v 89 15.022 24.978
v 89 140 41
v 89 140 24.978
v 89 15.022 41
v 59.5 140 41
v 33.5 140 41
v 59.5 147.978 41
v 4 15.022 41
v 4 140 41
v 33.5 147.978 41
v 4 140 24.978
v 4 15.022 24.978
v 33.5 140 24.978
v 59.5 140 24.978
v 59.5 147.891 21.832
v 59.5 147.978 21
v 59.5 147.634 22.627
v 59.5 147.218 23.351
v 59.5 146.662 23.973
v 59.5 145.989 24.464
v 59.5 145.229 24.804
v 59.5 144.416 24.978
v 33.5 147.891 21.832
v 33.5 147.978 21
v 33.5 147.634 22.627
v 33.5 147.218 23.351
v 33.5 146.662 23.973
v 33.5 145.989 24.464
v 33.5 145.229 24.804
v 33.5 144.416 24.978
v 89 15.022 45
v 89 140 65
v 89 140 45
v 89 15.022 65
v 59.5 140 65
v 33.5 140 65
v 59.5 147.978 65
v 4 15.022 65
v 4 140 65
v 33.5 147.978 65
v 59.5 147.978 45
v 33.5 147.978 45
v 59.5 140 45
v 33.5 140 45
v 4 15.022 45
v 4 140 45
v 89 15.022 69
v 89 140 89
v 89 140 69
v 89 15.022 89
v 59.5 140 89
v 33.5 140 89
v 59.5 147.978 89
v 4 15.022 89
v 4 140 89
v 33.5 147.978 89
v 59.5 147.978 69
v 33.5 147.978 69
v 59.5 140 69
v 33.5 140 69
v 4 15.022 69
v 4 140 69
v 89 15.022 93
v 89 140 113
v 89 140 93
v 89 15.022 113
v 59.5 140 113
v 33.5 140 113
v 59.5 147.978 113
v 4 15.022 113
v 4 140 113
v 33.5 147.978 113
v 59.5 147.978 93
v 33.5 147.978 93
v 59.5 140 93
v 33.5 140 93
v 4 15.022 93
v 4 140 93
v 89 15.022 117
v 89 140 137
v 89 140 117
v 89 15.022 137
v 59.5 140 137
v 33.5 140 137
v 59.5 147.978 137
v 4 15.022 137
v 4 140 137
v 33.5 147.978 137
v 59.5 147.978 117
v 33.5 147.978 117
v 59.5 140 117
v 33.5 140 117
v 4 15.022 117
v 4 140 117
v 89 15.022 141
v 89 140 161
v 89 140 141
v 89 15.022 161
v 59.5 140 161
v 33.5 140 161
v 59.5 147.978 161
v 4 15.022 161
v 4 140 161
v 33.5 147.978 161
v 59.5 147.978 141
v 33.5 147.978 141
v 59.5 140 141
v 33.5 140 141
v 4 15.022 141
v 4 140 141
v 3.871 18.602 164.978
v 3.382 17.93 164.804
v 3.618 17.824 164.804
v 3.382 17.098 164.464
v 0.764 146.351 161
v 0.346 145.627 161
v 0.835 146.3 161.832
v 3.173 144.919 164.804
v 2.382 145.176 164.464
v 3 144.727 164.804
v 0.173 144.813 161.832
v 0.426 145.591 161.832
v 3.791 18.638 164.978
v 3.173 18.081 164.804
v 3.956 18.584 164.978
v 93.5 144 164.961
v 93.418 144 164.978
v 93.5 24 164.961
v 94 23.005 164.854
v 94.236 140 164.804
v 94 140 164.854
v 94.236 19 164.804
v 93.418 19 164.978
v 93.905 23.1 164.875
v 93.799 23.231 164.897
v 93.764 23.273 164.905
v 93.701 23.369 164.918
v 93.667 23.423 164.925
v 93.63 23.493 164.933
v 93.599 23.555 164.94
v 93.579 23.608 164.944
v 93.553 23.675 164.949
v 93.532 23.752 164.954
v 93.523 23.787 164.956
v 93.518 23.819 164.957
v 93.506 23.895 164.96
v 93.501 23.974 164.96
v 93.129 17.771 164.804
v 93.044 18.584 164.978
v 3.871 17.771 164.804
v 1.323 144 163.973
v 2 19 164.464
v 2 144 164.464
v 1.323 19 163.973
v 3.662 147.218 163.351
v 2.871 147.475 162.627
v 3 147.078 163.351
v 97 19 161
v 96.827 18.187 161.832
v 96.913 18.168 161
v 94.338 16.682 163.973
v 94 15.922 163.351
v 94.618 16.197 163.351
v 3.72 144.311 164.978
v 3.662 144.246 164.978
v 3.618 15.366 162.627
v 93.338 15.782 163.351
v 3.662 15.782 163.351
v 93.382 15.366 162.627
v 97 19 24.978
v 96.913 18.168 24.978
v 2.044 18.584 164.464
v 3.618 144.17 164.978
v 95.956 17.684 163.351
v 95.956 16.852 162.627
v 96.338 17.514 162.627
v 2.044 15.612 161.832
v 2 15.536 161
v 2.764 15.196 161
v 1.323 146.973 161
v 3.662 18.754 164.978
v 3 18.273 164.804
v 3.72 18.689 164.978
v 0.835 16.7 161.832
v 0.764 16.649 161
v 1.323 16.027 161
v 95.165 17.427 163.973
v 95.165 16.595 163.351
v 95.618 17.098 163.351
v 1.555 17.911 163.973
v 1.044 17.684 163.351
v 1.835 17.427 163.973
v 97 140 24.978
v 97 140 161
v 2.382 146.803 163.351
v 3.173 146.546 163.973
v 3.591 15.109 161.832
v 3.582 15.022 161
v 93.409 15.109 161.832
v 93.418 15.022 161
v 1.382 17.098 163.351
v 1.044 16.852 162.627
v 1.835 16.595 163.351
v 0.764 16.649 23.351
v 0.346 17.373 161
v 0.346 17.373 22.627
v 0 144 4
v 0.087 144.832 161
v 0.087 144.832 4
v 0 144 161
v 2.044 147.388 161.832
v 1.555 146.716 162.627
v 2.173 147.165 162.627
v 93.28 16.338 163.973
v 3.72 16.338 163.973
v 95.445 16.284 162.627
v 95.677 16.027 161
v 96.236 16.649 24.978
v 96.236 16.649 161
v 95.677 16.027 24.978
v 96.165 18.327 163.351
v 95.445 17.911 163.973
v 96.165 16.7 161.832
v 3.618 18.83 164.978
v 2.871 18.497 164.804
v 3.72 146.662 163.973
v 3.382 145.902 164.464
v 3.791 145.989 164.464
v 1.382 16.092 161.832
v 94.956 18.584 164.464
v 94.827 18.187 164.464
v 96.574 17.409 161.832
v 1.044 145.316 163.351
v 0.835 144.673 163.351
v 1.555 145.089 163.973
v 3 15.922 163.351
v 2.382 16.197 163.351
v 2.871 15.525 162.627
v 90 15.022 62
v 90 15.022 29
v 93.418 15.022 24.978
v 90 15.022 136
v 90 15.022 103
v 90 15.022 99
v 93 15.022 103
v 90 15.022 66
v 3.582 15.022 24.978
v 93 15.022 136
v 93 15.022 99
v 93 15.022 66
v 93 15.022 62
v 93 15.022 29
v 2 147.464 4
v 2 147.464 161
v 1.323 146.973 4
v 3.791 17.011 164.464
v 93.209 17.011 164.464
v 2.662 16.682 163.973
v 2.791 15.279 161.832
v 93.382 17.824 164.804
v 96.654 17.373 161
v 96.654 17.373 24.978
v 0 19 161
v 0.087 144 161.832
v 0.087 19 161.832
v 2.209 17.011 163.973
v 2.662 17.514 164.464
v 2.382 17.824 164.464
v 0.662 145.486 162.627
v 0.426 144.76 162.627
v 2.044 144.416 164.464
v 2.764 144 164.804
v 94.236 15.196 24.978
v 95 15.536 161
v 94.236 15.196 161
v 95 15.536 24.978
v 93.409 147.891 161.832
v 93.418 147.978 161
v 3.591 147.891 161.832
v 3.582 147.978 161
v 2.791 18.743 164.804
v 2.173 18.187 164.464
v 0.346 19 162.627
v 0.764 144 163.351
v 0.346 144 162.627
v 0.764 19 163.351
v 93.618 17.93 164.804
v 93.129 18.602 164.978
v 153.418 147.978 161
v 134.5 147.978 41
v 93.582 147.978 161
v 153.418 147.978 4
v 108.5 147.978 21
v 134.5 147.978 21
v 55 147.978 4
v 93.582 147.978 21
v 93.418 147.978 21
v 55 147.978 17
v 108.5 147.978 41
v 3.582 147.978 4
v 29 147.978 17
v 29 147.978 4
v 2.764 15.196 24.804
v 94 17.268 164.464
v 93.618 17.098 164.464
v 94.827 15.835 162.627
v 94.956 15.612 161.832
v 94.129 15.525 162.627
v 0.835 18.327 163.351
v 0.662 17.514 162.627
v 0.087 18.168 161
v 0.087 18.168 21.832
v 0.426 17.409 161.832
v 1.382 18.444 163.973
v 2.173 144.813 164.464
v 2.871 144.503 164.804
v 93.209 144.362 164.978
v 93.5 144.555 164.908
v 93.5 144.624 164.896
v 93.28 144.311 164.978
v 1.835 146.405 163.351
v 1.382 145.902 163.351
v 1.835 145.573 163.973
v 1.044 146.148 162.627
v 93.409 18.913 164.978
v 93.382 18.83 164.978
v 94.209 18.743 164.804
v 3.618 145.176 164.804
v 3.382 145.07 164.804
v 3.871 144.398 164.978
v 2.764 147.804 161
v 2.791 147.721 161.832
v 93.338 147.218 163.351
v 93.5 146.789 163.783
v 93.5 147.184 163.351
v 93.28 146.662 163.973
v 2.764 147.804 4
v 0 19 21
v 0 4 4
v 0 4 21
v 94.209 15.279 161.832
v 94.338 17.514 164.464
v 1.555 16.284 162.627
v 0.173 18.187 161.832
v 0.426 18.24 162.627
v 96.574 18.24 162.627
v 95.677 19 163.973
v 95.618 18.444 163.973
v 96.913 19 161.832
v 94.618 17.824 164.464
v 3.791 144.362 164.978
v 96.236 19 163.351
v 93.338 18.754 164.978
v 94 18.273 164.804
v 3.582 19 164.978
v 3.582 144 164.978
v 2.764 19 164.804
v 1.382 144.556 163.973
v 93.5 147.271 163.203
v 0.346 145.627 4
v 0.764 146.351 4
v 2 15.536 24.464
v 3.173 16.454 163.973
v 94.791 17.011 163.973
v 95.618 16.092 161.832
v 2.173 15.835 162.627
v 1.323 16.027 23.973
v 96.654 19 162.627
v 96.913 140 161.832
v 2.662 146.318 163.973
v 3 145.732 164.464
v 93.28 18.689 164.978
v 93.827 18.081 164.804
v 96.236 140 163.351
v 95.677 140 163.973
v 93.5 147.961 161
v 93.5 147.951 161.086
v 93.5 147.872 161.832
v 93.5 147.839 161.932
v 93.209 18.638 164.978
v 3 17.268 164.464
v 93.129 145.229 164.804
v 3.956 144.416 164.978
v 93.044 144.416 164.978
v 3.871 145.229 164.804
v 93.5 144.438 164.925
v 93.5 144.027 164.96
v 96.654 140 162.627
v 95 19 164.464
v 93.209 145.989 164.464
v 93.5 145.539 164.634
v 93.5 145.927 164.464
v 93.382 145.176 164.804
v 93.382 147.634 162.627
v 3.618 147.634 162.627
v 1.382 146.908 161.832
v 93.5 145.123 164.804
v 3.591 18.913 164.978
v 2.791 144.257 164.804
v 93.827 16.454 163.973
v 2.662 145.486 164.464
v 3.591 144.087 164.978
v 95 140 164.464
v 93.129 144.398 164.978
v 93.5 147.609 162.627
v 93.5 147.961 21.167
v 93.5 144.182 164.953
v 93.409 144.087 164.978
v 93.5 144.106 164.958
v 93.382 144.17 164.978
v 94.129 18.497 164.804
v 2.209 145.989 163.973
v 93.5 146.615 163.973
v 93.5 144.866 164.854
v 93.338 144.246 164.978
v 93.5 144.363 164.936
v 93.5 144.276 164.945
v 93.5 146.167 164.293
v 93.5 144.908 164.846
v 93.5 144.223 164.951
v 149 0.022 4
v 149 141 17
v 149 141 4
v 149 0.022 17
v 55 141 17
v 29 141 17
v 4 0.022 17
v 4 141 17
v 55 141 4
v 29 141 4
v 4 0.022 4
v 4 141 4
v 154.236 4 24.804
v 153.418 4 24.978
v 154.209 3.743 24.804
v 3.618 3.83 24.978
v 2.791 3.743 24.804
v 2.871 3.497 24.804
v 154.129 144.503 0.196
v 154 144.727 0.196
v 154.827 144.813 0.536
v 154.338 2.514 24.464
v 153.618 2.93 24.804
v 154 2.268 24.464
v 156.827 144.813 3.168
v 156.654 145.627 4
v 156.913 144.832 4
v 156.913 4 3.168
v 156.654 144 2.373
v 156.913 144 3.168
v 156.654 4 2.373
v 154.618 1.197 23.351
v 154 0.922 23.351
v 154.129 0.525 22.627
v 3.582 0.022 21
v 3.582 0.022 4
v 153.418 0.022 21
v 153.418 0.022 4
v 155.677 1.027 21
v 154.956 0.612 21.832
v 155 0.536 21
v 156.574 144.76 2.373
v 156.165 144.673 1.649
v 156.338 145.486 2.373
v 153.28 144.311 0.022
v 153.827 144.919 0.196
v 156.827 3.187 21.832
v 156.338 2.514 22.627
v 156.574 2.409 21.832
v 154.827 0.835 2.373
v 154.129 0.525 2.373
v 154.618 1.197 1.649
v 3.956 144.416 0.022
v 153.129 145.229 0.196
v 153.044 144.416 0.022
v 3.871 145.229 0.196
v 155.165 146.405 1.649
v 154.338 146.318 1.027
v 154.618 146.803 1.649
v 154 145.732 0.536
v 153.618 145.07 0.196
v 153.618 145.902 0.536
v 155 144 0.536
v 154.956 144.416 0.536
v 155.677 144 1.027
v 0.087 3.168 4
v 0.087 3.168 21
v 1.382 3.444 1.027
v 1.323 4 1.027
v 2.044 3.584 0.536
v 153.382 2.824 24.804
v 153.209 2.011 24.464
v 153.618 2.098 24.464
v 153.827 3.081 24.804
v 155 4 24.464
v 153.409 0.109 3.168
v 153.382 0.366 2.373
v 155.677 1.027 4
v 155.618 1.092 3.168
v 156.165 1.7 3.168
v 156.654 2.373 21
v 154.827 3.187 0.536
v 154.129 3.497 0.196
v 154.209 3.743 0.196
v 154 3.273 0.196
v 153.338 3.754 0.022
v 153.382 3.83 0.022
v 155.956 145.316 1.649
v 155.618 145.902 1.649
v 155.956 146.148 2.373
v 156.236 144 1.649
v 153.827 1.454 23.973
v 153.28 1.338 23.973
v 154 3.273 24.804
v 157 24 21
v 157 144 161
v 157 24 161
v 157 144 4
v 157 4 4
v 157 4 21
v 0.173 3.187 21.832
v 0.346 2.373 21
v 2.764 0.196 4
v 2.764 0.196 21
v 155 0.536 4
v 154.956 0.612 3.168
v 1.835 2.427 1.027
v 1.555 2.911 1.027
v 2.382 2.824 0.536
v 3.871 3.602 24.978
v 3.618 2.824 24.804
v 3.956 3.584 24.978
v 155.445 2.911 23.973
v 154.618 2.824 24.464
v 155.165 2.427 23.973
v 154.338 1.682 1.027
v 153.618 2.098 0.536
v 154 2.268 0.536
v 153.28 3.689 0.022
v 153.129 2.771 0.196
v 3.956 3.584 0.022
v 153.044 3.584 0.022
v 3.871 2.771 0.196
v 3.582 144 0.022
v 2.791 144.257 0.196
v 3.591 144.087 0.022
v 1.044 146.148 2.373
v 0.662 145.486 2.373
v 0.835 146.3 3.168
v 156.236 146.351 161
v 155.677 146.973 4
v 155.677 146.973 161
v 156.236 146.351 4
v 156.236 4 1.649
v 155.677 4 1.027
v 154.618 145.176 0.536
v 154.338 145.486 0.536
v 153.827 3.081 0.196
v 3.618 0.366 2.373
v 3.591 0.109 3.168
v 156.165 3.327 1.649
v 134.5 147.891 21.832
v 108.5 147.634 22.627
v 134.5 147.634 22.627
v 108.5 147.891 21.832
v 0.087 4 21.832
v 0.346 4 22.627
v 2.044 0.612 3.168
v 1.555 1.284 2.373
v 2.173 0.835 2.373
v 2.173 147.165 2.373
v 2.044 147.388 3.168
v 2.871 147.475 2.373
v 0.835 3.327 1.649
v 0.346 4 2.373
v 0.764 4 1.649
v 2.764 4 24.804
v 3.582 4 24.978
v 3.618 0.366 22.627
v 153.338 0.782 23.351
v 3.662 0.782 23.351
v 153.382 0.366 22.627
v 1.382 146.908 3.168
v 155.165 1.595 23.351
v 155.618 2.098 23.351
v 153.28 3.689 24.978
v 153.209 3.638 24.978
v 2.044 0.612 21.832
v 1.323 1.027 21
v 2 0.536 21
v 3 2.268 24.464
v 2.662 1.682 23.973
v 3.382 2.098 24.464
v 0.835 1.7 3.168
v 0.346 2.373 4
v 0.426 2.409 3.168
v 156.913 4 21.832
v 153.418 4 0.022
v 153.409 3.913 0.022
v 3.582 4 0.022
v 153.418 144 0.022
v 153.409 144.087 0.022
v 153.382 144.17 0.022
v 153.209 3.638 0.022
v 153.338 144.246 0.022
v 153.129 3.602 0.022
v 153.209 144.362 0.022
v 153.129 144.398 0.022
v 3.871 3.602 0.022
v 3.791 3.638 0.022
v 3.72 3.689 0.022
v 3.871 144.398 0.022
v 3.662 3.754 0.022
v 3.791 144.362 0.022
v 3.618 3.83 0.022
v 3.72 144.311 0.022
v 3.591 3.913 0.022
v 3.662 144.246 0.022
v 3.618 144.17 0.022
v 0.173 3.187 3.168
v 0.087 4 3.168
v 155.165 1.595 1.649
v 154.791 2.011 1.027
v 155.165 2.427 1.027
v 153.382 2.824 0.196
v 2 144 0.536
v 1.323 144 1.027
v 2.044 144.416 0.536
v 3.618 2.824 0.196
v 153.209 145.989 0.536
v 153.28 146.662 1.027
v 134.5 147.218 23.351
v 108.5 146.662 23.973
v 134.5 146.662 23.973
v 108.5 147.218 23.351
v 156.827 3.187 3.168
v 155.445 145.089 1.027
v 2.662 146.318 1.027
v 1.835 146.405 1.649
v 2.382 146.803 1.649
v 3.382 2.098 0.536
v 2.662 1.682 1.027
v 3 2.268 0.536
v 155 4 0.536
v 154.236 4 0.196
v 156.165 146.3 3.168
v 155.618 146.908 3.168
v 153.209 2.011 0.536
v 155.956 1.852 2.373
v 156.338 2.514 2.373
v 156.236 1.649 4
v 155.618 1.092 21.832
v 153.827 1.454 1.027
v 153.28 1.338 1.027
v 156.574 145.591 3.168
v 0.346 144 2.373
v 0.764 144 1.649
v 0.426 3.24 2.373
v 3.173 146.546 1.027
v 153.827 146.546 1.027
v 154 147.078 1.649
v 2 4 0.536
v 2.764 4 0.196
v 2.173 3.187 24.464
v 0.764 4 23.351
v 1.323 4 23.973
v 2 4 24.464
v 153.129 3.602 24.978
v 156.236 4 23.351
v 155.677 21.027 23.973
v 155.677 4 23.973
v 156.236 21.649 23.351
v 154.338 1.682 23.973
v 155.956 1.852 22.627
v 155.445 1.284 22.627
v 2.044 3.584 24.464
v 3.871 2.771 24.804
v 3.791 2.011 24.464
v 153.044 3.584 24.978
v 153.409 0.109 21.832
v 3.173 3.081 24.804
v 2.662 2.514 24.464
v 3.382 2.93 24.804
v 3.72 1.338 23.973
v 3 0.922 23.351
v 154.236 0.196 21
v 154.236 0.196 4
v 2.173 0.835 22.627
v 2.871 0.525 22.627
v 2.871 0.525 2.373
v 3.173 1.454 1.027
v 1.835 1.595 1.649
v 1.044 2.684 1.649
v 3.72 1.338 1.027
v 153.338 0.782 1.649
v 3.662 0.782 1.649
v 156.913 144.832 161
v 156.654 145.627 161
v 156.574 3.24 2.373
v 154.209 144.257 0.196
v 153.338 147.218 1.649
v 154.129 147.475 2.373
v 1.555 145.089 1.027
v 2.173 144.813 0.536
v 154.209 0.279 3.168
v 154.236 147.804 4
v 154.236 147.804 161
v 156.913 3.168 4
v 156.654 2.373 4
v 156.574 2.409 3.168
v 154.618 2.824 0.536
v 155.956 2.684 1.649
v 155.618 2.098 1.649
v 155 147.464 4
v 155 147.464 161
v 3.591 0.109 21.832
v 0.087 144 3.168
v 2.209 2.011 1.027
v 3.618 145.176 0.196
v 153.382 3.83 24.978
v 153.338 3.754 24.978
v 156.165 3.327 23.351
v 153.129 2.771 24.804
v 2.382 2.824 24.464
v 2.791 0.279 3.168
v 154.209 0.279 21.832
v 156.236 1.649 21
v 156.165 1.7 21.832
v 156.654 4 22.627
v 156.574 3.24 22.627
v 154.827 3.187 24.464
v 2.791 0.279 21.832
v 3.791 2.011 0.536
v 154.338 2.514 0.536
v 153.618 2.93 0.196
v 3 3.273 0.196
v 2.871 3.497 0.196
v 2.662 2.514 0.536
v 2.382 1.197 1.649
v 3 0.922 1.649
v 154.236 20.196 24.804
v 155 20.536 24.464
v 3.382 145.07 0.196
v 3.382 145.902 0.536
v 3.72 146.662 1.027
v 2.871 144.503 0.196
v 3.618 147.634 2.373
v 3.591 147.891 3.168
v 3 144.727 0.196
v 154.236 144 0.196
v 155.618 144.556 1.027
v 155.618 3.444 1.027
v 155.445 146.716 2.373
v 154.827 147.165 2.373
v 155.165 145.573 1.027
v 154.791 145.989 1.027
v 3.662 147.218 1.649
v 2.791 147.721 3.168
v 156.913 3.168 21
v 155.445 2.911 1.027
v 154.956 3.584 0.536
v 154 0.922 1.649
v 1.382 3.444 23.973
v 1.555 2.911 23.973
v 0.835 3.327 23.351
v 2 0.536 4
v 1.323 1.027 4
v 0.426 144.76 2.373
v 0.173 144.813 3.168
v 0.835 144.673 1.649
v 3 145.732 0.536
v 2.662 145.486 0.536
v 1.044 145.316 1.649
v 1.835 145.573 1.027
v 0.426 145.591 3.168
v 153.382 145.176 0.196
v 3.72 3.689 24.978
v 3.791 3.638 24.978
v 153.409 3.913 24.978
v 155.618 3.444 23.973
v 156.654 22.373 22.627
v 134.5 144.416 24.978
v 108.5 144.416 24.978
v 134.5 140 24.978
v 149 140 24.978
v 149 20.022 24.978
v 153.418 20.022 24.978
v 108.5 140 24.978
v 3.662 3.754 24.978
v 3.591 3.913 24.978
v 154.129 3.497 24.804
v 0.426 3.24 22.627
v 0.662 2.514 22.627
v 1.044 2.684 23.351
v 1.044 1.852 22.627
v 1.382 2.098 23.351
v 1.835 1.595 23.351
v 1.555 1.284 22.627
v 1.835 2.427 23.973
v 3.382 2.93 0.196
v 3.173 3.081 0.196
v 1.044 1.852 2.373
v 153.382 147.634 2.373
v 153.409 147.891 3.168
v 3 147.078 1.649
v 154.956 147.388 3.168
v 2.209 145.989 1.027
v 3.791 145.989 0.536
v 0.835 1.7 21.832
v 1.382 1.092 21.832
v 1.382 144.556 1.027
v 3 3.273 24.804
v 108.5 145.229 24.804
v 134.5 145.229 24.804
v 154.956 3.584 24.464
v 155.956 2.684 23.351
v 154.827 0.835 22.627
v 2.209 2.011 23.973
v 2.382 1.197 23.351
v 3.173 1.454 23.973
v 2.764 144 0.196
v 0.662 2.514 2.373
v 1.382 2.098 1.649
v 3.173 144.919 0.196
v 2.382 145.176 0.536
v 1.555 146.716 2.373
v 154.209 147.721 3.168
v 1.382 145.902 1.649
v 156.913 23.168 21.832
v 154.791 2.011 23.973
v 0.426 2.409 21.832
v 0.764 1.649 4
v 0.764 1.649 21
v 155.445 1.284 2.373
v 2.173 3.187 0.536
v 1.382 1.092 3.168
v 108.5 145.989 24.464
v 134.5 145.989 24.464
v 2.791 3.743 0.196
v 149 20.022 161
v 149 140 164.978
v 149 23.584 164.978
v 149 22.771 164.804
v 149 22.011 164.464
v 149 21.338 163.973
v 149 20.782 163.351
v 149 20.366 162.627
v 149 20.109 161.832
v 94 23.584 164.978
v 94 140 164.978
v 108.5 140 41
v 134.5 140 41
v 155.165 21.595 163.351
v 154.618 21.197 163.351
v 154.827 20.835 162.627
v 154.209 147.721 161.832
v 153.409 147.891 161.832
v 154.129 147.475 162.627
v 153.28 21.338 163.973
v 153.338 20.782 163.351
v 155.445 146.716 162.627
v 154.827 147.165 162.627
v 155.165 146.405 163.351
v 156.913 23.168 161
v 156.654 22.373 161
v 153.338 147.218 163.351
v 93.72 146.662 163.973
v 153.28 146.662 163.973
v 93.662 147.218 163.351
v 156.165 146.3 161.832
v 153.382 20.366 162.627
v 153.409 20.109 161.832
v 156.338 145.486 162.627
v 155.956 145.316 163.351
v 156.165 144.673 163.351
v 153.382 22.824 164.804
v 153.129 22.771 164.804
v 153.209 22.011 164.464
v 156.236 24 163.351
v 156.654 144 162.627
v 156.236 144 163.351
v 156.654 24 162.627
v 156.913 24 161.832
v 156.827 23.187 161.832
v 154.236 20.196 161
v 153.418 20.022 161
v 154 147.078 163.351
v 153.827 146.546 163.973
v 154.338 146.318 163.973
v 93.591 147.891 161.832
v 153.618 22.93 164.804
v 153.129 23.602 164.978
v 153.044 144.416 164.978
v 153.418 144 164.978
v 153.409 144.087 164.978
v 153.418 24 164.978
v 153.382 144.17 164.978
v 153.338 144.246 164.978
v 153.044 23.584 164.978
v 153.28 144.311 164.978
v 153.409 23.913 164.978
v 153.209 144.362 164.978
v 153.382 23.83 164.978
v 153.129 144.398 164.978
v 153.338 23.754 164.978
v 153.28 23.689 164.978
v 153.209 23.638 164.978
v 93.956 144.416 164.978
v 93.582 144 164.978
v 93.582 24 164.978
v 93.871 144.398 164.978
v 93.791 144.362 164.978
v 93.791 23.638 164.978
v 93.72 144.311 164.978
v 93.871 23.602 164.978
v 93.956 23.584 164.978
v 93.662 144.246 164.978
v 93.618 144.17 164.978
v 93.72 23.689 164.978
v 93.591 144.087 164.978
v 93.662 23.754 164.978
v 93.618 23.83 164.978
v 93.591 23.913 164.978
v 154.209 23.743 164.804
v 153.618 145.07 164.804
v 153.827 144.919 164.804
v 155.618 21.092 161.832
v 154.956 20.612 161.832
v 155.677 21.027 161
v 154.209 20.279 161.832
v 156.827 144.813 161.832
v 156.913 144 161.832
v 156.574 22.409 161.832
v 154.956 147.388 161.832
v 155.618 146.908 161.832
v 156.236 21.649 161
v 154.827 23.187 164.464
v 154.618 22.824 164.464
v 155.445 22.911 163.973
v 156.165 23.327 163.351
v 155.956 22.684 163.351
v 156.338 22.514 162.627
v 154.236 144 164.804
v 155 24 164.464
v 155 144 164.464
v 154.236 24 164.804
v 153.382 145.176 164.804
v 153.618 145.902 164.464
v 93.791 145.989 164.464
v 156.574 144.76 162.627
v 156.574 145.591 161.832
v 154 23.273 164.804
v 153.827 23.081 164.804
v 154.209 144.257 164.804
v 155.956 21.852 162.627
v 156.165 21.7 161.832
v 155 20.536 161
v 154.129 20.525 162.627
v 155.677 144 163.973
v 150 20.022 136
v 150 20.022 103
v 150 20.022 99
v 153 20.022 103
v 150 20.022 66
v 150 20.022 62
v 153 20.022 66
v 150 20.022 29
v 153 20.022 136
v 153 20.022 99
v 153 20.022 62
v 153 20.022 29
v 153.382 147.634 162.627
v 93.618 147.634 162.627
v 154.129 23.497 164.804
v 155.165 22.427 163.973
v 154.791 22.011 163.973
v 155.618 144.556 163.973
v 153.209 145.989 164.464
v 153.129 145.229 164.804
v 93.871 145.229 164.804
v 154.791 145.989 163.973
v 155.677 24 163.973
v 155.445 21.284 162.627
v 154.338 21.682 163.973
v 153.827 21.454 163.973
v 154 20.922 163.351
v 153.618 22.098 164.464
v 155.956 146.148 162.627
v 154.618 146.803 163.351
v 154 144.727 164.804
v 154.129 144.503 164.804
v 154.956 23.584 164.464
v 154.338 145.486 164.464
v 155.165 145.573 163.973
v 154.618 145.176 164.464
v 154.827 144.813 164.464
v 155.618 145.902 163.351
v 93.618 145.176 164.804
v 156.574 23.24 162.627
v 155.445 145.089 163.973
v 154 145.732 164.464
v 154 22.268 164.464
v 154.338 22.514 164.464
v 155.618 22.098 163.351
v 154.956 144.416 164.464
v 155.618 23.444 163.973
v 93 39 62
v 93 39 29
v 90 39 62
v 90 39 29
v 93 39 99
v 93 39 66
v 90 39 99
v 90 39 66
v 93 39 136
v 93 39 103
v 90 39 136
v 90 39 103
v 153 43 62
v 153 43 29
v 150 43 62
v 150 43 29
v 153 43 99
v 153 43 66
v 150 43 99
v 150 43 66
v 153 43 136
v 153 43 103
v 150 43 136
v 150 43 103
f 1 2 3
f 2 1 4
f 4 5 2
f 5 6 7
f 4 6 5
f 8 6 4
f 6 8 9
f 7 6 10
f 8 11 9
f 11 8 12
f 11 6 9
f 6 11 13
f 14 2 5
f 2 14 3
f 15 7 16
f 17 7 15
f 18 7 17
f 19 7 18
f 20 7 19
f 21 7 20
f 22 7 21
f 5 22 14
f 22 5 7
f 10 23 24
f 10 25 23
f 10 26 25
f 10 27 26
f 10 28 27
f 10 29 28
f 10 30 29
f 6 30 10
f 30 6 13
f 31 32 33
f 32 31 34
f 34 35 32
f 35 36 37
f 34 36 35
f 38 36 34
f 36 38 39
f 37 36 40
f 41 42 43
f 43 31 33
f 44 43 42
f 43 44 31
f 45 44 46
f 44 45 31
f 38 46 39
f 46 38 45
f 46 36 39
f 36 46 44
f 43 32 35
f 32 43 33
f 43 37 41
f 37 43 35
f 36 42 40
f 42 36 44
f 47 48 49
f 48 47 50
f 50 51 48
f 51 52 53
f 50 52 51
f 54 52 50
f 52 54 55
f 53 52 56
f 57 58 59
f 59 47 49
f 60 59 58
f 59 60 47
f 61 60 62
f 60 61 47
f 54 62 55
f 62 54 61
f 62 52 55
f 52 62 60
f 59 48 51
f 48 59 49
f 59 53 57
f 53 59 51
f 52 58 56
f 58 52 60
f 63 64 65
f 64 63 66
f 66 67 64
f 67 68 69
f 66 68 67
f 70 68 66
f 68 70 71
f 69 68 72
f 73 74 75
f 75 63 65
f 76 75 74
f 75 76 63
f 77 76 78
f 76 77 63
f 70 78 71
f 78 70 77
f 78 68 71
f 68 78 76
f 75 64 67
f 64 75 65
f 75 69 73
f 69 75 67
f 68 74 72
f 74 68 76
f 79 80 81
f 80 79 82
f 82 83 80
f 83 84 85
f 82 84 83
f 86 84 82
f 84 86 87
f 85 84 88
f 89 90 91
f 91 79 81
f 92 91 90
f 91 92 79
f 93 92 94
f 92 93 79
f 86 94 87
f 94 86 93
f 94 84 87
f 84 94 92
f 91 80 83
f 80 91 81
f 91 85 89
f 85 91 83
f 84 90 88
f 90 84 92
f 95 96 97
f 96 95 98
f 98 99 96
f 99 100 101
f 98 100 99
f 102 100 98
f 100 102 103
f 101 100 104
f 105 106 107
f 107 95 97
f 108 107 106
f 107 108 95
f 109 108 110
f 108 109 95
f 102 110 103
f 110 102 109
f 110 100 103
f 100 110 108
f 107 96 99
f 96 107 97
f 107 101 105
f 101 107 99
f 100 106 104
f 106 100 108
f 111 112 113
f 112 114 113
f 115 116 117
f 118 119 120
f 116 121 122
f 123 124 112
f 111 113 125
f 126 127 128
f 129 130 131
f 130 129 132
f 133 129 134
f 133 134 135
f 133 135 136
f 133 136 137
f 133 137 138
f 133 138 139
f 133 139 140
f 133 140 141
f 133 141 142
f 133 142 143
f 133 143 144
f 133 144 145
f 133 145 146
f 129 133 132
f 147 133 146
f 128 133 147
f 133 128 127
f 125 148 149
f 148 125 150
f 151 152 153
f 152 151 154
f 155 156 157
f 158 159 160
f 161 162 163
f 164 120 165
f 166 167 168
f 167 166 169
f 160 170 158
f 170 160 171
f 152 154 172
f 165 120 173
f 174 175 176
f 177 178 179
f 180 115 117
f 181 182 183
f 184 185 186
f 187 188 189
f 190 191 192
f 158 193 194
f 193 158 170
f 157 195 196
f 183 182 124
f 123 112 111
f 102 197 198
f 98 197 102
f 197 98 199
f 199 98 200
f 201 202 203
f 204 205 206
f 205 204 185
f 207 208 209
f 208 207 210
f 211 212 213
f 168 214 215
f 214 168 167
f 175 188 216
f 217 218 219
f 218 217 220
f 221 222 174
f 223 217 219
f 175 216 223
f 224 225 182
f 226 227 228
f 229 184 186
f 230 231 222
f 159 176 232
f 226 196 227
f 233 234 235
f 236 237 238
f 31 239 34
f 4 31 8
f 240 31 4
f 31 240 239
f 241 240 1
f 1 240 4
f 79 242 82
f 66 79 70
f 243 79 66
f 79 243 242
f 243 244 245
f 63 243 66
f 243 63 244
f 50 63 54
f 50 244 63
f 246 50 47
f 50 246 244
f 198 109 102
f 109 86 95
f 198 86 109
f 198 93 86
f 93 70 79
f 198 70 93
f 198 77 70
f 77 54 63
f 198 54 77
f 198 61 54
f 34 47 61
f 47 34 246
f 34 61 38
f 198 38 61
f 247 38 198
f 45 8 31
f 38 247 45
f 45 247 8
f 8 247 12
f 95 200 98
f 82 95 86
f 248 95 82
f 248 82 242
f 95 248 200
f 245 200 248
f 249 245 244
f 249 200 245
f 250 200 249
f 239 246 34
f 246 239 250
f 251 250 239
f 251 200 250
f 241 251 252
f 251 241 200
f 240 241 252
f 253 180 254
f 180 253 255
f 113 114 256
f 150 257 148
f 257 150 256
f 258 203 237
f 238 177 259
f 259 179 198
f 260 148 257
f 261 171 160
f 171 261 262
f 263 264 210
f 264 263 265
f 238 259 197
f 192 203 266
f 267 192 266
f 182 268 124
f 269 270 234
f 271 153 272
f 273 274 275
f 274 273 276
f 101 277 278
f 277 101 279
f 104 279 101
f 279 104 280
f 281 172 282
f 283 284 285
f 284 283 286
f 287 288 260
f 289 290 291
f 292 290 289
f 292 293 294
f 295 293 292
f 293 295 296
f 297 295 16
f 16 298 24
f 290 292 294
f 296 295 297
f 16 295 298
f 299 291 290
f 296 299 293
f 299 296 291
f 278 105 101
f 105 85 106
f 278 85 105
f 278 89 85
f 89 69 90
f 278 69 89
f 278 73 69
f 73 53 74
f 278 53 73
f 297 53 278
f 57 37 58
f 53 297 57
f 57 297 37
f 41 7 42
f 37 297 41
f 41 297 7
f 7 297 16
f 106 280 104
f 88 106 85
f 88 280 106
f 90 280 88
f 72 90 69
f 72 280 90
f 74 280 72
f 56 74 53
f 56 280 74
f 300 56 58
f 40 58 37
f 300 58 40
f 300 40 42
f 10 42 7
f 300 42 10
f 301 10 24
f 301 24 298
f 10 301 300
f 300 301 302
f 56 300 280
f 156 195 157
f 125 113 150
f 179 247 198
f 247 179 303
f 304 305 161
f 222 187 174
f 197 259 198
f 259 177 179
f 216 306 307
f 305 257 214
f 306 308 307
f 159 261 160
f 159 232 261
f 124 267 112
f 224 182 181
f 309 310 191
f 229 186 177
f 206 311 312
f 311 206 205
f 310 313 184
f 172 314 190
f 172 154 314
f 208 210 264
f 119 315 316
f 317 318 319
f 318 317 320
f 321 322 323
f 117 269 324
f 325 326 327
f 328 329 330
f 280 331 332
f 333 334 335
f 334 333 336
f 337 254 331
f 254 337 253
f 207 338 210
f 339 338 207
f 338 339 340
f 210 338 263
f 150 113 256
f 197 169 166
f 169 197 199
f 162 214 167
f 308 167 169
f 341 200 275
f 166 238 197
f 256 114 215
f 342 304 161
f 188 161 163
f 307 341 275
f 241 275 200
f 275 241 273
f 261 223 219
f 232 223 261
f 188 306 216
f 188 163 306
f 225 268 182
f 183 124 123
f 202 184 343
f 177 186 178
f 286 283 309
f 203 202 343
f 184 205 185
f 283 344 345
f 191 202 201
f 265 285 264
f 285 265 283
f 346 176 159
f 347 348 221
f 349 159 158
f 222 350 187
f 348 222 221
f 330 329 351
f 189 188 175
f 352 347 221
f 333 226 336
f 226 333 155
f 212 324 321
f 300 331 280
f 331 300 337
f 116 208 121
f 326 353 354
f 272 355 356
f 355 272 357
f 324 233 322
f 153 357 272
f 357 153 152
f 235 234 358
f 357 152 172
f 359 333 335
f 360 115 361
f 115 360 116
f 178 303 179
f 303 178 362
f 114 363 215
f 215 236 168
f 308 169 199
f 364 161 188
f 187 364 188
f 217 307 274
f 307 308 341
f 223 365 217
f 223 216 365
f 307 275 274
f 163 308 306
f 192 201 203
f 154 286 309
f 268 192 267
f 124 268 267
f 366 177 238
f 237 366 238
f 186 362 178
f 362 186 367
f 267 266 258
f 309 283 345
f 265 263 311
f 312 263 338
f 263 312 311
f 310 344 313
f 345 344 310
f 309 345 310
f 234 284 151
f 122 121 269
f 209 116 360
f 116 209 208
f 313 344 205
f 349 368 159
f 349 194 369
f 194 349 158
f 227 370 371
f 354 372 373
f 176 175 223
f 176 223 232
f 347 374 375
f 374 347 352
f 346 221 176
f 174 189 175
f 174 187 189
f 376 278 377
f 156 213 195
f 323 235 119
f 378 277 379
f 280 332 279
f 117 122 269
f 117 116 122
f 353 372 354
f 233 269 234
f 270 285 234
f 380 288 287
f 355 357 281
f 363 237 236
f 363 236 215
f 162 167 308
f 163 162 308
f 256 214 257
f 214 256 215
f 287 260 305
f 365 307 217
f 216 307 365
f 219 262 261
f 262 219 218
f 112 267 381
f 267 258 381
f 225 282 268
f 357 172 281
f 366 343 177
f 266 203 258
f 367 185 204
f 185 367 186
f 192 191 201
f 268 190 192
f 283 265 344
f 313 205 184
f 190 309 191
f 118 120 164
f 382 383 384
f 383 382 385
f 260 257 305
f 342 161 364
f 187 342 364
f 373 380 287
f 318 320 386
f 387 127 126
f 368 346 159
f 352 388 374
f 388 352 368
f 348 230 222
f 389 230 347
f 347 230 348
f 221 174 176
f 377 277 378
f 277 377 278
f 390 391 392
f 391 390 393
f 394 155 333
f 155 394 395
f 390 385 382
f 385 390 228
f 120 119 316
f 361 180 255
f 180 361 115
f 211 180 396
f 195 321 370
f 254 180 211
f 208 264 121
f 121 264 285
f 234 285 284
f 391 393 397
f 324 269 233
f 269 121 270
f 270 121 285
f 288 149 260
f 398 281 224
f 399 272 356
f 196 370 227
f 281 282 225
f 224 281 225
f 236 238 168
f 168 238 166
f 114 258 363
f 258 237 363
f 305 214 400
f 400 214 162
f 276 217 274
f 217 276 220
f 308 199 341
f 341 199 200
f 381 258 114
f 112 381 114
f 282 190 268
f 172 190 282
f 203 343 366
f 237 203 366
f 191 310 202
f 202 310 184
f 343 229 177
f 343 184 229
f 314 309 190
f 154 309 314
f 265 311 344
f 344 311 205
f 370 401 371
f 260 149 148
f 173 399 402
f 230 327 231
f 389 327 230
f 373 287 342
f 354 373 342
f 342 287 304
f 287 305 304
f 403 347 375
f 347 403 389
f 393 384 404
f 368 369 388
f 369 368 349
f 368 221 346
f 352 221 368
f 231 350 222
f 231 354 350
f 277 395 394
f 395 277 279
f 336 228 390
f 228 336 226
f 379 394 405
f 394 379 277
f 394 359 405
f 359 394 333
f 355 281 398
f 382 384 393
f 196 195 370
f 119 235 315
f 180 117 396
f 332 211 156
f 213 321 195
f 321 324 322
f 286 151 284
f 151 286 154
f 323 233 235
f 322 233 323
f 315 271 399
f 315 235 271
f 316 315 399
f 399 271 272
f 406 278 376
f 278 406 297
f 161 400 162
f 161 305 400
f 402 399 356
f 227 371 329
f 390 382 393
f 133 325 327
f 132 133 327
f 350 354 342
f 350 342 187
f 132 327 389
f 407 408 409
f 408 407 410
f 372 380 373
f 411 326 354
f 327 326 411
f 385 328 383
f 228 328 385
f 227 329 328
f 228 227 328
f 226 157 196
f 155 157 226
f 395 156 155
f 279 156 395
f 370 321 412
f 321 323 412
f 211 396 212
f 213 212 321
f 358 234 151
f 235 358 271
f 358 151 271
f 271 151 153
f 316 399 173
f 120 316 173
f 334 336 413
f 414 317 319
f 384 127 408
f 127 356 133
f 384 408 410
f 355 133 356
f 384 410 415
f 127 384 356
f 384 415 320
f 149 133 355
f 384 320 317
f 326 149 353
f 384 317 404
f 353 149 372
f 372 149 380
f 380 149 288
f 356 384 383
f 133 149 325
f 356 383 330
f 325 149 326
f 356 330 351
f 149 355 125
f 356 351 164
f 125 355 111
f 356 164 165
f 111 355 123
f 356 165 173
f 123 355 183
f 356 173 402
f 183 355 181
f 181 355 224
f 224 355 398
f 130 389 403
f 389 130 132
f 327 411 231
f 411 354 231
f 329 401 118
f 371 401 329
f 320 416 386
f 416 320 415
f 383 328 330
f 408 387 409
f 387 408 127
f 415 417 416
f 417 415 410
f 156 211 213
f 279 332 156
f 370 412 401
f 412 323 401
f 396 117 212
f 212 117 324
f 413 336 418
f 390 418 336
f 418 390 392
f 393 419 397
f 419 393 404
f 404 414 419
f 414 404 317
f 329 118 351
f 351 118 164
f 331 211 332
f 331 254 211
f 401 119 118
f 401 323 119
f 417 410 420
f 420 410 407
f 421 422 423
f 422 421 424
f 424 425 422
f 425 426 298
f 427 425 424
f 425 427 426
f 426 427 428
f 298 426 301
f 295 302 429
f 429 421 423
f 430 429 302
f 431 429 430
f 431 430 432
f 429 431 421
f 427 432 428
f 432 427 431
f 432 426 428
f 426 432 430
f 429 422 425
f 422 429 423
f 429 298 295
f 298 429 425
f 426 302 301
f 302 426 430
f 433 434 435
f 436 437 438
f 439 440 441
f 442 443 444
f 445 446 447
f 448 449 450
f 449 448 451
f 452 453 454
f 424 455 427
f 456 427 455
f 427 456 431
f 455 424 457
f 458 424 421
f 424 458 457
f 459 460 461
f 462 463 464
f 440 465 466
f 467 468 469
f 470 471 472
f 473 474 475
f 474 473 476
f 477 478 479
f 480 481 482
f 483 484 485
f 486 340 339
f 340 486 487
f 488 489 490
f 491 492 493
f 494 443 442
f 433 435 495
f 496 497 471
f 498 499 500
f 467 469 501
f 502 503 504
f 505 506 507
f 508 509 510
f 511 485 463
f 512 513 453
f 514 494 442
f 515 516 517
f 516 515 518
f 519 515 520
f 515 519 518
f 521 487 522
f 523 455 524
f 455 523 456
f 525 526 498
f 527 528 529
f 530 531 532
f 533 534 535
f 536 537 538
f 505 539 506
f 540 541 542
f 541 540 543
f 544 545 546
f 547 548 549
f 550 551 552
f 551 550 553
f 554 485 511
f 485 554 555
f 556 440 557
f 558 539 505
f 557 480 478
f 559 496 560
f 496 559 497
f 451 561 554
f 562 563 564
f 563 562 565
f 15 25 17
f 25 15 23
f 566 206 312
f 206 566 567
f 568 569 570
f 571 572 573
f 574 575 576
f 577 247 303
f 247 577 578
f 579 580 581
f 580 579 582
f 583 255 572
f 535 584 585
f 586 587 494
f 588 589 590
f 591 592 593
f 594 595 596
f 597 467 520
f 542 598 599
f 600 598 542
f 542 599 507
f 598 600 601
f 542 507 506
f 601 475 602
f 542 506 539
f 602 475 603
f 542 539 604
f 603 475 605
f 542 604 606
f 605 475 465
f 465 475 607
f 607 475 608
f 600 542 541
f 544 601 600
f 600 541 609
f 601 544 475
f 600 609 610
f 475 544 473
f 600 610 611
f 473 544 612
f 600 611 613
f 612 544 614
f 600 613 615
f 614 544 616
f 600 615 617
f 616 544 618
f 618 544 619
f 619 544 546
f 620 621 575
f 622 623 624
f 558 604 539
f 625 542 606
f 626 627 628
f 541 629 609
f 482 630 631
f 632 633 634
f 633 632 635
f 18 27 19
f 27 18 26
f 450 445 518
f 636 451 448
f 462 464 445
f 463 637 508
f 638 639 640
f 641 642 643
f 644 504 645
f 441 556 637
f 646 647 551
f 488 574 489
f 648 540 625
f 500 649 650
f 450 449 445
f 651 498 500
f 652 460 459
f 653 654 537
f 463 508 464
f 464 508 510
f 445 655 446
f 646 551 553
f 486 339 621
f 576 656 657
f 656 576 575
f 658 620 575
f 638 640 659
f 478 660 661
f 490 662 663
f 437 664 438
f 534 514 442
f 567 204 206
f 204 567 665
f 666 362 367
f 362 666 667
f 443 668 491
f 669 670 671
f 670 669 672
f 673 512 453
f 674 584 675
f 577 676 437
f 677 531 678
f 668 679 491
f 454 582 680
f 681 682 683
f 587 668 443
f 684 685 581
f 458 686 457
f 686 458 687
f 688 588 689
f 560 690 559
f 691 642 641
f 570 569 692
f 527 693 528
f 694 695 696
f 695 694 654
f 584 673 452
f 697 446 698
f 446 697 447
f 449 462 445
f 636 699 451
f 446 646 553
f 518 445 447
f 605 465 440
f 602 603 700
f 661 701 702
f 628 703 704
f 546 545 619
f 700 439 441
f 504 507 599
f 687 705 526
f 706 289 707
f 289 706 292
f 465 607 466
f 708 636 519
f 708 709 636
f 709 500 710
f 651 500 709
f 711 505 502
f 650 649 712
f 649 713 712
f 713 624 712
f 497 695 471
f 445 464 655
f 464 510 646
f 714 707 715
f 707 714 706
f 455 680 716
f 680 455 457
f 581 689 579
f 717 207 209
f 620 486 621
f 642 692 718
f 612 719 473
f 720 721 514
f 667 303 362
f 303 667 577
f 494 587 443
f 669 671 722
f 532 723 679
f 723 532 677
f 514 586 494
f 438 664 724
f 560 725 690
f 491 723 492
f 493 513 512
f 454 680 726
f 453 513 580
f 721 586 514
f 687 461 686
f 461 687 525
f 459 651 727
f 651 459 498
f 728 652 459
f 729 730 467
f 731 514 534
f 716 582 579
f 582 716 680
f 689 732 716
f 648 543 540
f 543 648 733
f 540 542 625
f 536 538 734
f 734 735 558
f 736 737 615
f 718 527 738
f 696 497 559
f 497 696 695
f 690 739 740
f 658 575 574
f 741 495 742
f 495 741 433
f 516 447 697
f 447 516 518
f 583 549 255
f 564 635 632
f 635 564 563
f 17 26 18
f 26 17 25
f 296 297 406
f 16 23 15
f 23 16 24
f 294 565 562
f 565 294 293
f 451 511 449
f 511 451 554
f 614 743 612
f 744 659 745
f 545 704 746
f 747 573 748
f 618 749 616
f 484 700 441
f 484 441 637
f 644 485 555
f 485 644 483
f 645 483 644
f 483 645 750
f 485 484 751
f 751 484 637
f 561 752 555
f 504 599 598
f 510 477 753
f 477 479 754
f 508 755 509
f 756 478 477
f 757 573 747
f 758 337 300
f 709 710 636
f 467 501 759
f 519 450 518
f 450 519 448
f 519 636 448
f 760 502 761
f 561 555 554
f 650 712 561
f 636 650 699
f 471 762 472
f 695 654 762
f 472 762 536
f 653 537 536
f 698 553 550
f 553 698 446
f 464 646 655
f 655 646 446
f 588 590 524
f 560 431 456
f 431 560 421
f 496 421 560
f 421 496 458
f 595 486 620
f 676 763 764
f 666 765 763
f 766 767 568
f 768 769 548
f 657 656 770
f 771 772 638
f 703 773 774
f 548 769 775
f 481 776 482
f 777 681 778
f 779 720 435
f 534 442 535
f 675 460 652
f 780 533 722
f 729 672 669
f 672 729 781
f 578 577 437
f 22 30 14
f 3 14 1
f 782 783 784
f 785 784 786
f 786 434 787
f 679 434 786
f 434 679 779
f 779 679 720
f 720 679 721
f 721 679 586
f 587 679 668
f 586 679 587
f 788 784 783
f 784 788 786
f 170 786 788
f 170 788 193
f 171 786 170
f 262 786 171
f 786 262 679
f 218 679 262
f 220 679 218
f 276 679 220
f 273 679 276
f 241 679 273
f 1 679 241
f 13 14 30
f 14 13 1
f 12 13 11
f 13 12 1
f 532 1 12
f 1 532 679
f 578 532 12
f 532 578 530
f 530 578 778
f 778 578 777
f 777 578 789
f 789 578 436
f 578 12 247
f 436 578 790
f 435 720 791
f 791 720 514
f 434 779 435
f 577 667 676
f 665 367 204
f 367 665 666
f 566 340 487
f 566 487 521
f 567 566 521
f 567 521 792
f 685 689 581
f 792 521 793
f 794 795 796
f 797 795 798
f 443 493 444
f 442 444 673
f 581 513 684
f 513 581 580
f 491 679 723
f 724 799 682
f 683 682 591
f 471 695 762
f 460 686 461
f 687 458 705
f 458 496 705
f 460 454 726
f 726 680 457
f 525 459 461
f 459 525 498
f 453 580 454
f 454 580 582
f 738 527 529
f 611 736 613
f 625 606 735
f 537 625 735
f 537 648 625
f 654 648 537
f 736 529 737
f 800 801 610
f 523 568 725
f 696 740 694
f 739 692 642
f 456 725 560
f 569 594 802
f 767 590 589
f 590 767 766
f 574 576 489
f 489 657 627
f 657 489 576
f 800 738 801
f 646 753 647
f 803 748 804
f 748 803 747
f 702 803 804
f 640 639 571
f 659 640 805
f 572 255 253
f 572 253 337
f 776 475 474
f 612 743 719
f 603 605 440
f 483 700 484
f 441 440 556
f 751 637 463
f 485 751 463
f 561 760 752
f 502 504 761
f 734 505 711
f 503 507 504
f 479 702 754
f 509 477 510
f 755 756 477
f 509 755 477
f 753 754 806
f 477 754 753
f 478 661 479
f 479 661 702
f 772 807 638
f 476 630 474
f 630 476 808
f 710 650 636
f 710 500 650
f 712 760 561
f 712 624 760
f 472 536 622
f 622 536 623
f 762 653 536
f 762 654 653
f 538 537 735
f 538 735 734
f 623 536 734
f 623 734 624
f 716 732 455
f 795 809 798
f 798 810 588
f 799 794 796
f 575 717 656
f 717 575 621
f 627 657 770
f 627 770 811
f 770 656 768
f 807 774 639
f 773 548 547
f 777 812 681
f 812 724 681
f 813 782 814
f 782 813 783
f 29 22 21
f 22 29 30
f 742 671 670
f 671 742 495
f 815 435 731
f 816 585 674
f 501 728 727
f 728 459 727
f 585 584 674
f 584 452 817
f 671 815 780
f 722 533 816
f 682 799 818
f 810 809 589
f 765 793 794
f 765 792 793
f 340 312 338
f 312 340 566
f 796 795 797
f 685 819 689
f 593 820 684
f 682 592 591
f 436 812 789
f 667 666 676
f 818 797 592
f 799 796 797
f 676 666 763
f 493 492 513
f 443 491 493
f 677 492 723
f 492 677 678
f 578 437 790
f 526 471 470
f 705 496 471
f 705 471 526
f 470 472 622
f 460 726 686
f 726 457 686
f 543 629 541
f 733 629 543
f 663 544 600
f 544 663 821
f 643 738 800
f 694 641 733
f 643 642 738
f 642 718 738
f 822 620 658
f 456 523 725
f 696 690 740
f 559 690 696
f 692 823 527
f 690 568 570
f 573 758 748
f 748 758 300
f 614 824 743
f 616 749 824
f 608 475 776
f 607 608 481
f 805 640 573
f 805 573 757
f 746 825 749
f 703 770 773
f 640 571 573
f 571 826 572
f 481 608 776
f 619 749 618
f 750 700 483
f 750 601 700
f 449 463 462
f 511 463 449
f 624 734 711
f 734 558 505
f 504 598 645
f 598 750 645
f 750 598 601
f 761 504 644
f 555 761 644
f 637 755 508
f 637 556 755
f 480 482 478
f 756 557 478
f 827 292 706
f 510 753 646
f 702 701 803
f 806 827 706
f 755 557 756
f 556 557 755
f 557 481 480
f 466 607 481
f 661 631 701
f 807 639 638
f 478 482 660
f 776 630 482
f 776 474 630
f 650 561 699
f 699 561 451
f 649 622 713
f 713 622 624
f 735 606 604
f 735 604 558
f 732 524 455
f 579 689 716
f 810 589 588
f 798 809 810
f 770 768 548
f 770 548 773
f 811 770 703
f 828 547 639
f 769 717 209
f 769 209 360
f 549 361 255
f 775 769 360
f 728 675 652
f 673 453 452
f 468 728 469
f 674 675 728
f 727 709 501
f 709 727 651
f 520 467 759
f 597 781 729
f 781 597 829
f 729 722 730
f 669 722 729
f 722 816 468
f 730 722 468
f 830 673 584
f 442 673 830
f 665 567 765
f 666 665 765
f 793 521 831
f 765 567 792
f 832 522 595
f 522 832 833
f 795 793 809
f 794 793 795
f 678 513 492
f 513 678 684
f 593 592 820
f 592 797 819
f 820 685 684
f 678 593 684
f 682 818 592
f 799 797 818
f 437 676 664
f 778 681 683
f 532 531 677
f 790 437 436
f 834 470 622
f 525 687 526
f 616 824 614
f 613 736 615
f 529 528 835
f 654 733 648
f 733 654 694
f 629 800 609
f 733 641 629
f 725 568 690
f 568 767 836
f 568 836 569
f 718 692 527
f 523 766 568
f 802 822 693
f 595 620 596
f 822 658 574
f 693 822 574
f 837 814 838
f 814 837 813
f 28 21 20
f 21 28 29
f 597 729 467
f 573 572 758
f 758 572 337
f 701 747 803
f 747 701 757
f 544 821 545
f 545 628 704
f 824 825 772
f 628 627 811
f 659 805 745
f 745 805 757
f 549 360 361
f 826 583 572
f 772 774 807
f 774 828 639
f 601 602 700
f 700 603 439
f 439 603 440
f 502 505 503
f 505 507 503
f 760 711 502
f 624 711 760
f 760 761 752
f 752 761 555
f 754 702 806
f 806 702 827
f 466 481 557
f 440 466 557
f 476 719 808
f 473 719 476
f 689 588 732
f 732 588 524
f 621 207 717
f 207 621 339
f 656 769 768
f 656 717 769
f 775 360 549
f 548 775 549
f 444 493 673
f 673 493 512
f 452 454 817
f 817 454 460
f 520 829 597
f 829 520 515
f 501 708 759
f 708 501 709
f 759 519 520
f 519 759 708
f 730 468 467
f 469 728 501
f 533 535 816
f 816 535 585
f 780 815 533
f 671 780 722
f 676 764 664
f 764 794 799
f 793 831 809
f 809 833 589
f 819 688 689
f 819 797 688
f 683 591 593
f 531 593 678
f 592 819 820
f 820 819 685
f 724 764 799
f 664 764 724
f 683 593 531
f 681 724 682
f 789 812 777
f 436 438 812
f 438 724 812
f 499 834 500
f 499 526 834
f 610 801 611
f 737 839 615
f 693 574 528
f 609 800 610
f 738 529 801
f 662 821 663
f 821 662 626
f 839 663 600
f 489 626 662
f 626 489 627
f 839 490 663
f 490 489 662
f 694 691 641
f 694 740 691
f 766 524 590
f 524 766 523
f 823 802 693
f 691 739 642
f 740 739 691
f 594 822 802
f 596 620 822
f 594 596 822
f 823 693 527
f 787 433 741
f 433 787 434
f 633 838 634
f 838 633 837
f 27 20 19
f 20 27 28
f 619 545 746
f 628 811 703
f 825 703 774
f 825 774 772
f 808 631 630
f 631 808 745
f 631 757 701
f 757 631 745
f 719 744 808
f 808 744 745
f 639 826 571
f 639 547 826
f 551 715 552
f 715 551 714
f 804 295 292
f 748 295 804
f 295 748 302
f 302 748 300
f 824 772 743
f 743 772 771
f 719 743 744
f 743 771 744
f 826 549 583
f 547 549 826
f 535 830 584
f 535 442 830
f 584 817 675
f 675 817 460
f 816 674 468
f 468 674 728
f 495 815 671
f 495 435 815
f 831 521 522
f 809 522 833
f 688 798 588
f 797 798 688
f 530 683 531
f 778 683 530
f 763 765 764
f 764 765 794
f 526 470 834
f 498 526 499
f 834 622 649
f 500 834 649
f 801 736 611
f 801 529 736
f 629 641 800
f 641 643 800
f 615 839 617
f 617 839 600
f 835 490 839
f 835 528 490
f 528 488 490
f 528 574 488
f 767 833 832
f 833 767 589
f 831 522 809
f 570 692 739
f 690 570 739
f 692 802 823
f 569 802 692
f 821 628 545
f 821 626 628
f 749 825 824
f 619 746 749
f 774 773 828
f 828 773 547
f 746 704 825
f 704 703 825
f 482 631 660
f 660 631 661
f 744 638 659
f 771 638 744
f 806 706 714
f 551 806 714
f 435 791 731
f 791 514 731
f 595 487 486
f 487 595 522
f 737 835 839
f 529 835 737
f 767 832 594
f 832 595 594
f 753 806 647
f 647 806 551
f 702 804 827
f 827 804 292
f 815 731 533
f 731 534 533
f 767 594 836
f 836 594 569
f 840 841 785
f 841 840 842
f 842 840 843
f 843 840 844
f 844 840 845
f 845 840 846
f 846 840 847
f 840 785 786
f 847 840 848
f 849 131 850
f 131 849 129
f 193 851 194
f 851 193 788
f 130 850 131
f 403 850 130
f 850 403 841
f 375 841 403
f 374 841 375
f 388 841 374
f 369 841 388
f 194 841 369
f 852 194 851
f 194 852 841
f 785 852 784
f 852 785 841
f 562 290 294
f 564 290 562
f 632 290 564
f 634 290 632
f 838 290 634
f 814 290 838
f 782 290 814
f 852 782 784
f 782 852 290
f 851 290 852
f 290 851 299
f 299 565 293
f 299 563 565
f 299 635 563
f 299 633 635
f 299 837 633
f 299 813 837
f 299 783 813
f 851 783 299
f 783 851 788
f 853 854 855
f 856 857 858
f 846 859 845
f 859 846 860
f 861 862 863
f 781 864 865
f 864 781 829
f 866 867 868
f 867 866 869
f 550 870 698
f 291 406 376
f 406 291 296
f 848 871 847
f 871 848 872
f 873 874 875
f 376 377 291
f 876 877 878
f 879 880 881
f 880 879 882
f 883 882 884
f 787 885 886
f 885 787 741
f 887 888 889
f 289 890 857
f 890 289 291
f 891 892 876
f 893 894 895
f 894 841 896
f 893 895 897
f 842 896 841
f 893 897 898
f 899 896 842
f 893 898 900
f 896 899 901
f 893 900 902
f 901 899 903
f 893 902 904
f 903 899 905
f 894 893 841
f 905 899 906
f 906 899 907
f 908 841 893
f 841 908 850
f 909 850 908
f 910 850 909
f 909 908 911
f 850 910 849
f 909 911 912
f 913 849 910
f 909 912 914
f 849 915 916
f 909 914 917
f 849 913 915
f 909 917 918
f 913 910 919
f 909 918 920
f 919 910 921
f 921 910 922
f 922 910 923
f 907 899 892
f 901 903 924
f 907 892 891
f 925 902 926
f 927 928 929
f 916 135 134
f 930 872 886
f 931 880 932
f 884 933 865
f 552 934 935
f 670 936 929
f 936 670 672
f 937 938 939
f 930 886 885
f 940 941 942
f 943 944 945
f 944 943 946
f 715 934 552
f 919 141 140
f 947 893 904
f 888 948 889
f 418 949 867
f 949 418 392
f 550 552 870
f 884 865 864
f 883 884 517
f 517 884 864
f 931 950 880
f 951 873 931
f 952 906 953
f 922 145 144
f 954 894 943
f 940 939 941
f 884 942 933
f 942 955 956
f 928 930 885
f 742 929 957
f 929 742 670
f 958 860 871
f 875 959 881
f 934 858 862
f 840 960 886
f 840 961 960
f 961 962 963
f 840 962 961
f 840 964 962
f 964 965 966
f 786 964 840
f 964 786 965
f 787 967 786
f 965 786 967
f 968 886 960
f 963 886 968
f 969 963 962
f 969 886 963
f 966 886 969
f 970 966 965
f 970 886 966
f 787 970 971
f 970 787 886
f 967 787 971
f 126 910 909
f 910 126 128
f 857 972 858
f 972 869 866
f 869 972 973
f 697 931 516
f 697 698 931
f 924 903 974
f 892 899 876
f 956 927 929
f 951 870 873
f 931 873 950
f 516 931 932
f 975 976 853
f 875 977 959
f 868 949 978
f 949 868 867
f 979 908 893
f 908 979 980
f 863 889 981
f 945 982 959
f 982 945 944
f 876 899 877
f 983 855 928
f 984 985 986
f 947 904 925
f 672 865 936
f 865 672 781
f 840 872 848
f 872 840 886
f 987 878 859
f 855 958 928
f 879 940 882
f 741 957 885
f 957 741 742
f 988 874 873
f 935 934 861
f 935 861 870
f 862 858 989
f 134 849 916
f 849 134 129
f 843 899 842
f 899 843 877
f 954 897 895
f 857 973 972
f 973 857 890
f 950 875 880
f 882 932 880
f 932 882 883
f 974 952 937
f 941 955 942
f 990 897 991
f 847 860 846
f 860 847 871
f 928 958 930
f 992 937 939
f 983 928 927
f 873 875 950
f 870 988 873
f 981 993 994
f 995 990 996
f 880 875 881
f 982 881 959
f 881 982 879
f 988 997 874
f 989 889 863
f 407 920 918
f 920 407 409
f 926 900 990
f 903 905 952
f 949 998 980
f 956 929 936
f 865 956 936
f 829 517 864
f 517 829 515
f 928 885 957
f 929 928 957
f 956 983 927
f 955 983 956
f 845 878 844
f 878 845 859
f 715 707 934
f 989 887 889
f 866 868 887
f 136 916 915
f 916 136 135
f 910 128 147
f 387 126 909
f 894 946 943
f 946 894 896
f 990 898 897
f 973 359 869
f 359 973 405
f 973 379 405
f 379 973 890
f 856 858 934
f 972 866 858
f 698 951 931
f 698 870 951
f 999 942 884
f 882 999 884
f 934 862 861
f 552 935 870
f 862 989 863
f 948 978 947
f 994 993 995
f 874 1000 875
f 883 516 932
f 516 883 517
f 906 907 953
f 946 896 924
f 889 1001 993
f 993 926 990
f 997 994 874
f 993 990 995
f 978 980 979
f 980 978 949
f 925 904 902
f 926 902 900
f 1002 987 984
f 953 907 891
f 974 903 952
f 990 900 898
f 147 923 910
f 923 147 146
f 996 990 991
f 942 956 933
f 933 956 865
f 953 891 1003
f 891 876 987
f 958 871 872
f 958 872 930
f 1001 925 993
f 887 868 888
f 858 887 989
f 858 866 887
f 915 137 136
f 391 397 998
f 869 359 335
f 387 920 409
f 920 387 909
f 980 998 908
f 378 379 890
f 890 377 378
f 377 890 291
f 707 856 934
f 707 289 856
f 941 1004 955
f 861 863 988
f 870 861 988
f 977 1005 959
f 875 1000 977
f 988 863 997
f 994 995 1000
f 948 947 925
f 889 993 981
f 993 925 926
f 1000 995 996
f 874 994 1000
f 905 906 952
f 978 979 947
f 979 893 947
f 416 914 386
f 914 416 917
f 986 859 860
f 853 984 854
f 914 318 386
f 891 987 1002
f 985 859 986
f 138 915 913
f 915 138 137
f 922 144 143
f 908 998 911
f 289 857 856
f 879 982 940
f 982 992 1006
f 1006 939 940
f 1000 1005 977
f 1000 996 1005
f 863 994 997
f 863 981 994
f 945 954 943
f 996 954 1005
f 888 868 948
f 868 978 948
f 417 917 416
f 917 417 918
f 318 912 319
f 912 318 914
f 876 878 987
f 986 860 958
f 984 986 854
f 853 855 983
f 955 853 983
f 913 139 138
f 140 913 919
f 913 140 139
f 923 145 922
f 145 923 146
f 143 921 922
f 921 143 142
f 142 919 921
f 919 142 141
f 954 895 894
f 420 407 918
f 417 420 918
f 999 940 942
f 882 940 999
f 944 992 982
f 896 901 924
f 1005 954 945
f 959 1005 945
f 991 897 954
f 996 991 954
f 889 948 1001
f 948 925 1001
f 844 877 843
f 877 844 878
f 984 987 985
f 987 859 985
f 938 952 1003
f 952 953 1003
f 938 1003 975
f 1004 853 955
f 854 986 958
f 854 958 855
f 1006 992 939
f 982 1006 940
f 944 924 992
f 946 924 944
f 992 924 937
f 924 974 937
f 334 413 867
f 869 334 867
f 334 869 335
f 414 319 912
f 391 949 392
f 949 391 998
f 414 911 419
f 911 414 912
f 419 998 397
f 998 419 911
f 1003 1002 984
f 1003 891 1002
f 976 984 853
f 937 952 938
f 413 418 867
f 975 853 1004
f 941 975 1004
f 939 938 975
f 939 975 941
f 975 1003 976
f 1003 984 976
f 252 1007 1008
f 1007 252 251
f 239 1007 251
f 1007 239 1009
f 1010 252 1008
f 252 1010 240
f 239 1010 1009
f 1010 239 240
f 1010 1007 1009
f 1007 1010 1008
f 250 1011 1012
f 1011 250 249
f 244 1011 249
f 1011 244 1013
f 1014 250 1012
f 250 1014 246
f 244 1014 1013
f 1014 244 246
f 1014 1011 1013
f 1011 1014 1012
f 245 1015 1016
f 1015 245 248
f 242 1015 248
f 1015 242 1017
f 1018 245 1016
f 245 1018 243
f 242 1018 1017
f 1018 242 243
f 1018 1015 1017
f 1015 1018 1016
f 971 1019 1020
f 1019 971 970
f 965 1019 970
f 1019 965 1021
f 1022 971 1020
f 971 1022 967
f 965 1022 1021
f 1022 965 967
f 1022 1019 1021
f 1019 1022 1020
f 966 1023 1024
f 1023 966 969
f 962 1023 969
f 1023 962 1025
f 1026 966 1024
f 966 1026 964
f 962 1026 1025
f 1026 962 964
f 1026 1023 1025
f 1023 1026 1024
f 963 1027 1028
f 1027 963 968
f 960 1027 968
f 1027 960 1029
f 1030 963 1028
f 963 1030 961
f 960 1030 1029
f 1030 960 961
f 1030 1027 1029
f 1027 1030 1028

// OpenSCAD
cd_length     = 140;
cd_width      = 145;
cd_height     =  13;

slit          =  26;
slit_position =  25;

//SD cards
sd_length     =   3;
sd_width      =  25;
sd_height     =  33;

battery_hold_w = 36;
battery_hold_l = 100;

drive_width   =  85;
drive_length  = 125;
drive_height  =  20;
wall          =   4;

no_of_drives  =   6;

large_drive_length = 120;
large_drive_width  =  55;
large_drive_height = 180;

$fn = 30;

module rounded_cube(width, length, height, corner) {
    hull() {
        translate([ 0*width+1*corner, 0*length+1*corner, 0*height+1*corner])
            sphere( r = corner );

        translate([ 1*width-0*corner, 0*length+1*corner, 0*height+1*corner ])
            sphere( r = corner );

        translate([ 0*width+1*corner, 1*length-0*corner, 0*height+1*corner ])
            sphere( r = corner );

        translate([ 1*width-0*corner, 1*length-0*corner, 0*height+1*corner ])
            sphere( r = corner );

        translate([ 0*width+1*corner, 0*length+1*corner, 1*height-0*corner ])
            sphere( r = corner );

        translate([ 1*width-0*corner, 0*length+1*corner, 1*height-0*corner ])
            sphere( r = corner );

        translate([ 0*width+1*corner, 1*length-0*corner, 1*height-0*corner ])
            sphere( r = corner );

        translate([ 1*width-0*corner, 1*length-0*corner, 1*height-0*corner ])
            sphere( r = corner );
    }
}

module drive() {
    cube([drive_width, drive_length+1, drive_height]);
    
    translate([0.5*(drive_width-slit), drive_length, 0])
    cube([slit, 2*wall+2, drive_height]);

}

module cd() {
    cube([cd_width, cd_length+1, cd_height]);
    
    translate([slit_position, cd_length, 0])
    cube([slit, 2*wall+2, cd_height]);

}

module cd_case() {
    difference() {
        //main body
        rounded_cube(cd_width+2*wall, cd_length+wall, cd_height+2*wall, wall);
        
        //slit for CD ROM
        translate([wall, 0, wall])
        cd();
    }    
}

module sd() {
    cube([sd_length, sd_width, sd_height]);
}


module drive_case() {
    difference() {
        rounded_cube(drive_width+2*wall, drive_length+wall, no_of_drives*(drive_height+wall), wall);

        for (drive_no = [0: no_of_drives - 1]) {
            translate([
                wall,
                -1,
                (drive_no+1)*wall+drive_no*drive_height
            ])
            drive();
        }
    }
}

module large_drive() {
    cube([large_drive_width, large_drive_length+1, large_drive_height]);
    
    translate([0.5*(large_drive_width-slit), large_drive_length, 0])
    cube([slit, 2*wall+2, drive_height]);
}

module large_drive_case() {
    difference() {
        //do not make it as high as large_drive_height so it can be printed
        //rather we make it as high as drive_case and without a roof
        rounded_cube(large_drive_width+2*wall, large_drive_length+wall, no_of_drives*(drive_height+wall), wall);
    
        translate([wall, -1, wall])
        large_drive();
    }
}

module sd_case() {
}

module organizer() {
     
        //hole for battery organizer
        //translate([wall, cd_length-battery_hold_l+wall, cd_height+2*wall])
        //cube([battery_hold_w, battery_hold_l, 3*wall]);
                
        //slits for SD cards
//        translate([    wall,  1*wall, cd_height+1.5*wall]) sd();
//        translate([6.5*wall,  2*wall, cd_height+1.5*wall]) sd();
//        translate([    wall,  3*wall, cd_height+1.5*wall]) sd();
//        translate([6.5*wall,  4*wall, cd_height+1.5*wall]) sd();
//        translate([    wall,  5*wall, cd_height+1.5*wall]) sd();
//        translate([6.5*wall,  6*wall, cd_height+1.5*wall]) sd();
//        translate([    wall,  7*wall, cd_height+1.5*wall]) sd();
//        translate([6.5*wall,  8*wall, cd_height+1.5*wall]) sd();
//        translate([    wall,  9*wall, cd_height+1.5*wall]) sd();
//        translate([6.5*wall, 10*wall, cd_height+1.5*wall]) sd();
    cd_case();
    
    //drive organizer
    translate([0, (cd_length-drive_length), cd_height+wall])
    drive_case();
    
    translate([drive_width+2*wall-3, (cd_length-large_drive_length), cd_height+wall ])
    large_drive_case();
}

difference() {
    organizer();

    //middle slots for SD cards
    translate([drive_width+1.5*wall-1, (cd_length-drive_length)-1, cd_height+4*wall+0*sd_height]) sd();
    translate([drive_width+1.5*wall-1, (cd_length-drive_length)-1, cd_height+5*wall+1*sd_height]) sd();
    translate([drive_width+1.5*wall-1, (cd_length-drive_length)-1, cd_height+6*wall+2*sd_height]) sd();

    //right slots for SD cards
    translate([cd_width+1.5*wall-1, (cd_length-drive_length)+3, cd_height+4*wall+0*sd_height]) sd();
    translate([cd_width+1.5*wall-1, (cd_length-drive_length)+3, cd_height+5*wall+1*sd_height]) sd();
    translate([cd_width+1.5*wall-1, (cd_length-drive_length)+3, cd_height+6*wall+2*sd_height]) sd();
}
